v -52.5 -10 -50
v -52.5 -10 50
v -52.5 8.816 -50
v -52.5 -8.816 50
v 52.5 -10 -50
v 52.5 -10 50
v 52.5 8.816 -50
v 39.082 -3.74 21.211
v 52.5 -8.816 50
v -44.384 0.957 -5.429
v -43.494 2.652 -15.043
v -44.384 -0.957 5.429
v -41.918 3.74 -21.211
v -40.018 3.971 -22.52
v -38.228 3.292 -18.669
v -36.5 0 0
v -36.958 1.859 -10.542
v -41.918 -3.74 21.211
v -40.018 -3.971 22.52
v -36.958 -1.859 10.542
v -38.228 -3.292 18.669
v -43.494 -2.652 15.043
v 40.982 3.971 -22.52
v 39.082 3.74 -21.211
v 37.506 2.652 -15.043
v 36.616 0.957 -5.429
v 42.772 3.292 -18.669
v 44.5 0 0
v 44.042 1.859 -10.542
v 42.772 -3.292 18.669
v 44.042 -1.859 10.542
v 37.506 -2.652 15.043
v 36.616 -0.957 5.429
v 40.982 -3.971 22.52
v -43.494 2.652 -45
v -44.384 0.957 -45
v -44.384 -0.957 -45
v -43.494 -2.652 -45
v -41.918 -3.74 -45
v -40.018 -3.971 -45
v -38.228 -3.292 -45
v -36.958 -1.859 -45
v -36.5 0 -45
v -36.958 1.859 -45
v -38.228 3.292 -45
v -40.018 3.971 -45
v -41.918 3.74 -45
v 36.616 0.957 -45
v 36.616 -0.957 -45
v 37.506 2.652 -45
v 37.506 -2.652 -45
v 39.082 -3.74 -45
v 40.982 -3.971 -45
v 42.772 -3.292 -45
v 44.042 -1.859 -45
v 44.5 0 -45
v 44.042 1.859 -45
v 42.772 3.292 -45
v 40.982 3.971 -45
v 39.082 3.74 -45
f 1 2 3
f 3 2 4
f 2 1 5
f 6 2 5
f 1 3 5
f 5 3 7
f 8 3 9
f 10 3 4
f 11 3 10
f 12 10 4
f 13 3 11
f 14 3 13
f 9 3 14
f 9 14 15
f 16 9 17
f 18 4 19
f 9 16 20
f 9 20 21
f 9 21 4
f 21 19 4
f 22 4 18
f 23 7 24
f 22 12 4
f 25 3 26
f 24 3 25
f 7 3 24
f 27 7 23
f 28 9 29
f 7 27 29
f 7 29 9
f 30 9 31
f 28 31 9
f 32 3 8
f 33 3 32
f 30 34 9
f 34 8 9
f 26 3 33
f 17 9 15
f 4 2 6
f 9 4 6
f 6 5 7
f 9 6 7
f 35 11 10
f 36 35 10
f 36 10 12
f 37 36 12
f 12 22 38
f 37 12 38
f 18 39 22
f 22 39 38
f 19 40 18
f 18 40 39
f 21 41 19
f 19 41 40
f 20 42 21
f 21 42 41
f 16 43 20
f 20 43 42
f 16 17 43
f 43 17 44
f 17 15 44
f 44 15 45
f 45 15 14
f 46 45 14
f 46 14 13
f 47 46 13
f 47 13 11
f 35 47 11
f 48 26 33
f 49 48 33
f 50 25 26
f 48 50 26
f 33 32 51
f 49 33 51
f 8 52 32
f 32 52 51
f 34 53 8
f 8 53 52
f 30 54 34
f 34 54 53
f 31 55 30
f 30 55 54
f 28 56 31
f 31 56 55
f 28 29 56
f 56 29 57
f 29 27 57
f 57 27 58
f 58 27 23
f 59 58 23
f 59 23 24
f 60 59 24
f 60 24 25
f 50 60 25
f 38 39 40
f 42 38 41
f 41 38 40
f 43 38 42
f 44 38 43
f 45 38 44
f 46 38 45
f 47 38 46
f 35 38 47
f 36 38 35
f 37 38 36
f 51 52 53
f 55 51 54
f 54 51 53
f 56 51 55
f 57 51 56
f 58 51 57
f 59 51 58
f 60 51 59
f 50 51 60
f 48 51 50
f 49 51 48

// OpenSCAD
difference(){
 difference(){
  union(){
   translate([0,0,0]){
    cube([105,20,100],center=true);
   }
  }
  union(){
   translate([(95/2)-7,0,-100/2+5]){
    cylinder(h = 200, r=4);
   }
   translate([(-95/2)+7,0,-100/2+5]){
    cylinder(h = 200, r=4);
   }
  }
 }
 rotate(a=[10,0,0]){
  translate([0,10,0]){
   cube([126,20,120],center=true);
  }
 }
}
